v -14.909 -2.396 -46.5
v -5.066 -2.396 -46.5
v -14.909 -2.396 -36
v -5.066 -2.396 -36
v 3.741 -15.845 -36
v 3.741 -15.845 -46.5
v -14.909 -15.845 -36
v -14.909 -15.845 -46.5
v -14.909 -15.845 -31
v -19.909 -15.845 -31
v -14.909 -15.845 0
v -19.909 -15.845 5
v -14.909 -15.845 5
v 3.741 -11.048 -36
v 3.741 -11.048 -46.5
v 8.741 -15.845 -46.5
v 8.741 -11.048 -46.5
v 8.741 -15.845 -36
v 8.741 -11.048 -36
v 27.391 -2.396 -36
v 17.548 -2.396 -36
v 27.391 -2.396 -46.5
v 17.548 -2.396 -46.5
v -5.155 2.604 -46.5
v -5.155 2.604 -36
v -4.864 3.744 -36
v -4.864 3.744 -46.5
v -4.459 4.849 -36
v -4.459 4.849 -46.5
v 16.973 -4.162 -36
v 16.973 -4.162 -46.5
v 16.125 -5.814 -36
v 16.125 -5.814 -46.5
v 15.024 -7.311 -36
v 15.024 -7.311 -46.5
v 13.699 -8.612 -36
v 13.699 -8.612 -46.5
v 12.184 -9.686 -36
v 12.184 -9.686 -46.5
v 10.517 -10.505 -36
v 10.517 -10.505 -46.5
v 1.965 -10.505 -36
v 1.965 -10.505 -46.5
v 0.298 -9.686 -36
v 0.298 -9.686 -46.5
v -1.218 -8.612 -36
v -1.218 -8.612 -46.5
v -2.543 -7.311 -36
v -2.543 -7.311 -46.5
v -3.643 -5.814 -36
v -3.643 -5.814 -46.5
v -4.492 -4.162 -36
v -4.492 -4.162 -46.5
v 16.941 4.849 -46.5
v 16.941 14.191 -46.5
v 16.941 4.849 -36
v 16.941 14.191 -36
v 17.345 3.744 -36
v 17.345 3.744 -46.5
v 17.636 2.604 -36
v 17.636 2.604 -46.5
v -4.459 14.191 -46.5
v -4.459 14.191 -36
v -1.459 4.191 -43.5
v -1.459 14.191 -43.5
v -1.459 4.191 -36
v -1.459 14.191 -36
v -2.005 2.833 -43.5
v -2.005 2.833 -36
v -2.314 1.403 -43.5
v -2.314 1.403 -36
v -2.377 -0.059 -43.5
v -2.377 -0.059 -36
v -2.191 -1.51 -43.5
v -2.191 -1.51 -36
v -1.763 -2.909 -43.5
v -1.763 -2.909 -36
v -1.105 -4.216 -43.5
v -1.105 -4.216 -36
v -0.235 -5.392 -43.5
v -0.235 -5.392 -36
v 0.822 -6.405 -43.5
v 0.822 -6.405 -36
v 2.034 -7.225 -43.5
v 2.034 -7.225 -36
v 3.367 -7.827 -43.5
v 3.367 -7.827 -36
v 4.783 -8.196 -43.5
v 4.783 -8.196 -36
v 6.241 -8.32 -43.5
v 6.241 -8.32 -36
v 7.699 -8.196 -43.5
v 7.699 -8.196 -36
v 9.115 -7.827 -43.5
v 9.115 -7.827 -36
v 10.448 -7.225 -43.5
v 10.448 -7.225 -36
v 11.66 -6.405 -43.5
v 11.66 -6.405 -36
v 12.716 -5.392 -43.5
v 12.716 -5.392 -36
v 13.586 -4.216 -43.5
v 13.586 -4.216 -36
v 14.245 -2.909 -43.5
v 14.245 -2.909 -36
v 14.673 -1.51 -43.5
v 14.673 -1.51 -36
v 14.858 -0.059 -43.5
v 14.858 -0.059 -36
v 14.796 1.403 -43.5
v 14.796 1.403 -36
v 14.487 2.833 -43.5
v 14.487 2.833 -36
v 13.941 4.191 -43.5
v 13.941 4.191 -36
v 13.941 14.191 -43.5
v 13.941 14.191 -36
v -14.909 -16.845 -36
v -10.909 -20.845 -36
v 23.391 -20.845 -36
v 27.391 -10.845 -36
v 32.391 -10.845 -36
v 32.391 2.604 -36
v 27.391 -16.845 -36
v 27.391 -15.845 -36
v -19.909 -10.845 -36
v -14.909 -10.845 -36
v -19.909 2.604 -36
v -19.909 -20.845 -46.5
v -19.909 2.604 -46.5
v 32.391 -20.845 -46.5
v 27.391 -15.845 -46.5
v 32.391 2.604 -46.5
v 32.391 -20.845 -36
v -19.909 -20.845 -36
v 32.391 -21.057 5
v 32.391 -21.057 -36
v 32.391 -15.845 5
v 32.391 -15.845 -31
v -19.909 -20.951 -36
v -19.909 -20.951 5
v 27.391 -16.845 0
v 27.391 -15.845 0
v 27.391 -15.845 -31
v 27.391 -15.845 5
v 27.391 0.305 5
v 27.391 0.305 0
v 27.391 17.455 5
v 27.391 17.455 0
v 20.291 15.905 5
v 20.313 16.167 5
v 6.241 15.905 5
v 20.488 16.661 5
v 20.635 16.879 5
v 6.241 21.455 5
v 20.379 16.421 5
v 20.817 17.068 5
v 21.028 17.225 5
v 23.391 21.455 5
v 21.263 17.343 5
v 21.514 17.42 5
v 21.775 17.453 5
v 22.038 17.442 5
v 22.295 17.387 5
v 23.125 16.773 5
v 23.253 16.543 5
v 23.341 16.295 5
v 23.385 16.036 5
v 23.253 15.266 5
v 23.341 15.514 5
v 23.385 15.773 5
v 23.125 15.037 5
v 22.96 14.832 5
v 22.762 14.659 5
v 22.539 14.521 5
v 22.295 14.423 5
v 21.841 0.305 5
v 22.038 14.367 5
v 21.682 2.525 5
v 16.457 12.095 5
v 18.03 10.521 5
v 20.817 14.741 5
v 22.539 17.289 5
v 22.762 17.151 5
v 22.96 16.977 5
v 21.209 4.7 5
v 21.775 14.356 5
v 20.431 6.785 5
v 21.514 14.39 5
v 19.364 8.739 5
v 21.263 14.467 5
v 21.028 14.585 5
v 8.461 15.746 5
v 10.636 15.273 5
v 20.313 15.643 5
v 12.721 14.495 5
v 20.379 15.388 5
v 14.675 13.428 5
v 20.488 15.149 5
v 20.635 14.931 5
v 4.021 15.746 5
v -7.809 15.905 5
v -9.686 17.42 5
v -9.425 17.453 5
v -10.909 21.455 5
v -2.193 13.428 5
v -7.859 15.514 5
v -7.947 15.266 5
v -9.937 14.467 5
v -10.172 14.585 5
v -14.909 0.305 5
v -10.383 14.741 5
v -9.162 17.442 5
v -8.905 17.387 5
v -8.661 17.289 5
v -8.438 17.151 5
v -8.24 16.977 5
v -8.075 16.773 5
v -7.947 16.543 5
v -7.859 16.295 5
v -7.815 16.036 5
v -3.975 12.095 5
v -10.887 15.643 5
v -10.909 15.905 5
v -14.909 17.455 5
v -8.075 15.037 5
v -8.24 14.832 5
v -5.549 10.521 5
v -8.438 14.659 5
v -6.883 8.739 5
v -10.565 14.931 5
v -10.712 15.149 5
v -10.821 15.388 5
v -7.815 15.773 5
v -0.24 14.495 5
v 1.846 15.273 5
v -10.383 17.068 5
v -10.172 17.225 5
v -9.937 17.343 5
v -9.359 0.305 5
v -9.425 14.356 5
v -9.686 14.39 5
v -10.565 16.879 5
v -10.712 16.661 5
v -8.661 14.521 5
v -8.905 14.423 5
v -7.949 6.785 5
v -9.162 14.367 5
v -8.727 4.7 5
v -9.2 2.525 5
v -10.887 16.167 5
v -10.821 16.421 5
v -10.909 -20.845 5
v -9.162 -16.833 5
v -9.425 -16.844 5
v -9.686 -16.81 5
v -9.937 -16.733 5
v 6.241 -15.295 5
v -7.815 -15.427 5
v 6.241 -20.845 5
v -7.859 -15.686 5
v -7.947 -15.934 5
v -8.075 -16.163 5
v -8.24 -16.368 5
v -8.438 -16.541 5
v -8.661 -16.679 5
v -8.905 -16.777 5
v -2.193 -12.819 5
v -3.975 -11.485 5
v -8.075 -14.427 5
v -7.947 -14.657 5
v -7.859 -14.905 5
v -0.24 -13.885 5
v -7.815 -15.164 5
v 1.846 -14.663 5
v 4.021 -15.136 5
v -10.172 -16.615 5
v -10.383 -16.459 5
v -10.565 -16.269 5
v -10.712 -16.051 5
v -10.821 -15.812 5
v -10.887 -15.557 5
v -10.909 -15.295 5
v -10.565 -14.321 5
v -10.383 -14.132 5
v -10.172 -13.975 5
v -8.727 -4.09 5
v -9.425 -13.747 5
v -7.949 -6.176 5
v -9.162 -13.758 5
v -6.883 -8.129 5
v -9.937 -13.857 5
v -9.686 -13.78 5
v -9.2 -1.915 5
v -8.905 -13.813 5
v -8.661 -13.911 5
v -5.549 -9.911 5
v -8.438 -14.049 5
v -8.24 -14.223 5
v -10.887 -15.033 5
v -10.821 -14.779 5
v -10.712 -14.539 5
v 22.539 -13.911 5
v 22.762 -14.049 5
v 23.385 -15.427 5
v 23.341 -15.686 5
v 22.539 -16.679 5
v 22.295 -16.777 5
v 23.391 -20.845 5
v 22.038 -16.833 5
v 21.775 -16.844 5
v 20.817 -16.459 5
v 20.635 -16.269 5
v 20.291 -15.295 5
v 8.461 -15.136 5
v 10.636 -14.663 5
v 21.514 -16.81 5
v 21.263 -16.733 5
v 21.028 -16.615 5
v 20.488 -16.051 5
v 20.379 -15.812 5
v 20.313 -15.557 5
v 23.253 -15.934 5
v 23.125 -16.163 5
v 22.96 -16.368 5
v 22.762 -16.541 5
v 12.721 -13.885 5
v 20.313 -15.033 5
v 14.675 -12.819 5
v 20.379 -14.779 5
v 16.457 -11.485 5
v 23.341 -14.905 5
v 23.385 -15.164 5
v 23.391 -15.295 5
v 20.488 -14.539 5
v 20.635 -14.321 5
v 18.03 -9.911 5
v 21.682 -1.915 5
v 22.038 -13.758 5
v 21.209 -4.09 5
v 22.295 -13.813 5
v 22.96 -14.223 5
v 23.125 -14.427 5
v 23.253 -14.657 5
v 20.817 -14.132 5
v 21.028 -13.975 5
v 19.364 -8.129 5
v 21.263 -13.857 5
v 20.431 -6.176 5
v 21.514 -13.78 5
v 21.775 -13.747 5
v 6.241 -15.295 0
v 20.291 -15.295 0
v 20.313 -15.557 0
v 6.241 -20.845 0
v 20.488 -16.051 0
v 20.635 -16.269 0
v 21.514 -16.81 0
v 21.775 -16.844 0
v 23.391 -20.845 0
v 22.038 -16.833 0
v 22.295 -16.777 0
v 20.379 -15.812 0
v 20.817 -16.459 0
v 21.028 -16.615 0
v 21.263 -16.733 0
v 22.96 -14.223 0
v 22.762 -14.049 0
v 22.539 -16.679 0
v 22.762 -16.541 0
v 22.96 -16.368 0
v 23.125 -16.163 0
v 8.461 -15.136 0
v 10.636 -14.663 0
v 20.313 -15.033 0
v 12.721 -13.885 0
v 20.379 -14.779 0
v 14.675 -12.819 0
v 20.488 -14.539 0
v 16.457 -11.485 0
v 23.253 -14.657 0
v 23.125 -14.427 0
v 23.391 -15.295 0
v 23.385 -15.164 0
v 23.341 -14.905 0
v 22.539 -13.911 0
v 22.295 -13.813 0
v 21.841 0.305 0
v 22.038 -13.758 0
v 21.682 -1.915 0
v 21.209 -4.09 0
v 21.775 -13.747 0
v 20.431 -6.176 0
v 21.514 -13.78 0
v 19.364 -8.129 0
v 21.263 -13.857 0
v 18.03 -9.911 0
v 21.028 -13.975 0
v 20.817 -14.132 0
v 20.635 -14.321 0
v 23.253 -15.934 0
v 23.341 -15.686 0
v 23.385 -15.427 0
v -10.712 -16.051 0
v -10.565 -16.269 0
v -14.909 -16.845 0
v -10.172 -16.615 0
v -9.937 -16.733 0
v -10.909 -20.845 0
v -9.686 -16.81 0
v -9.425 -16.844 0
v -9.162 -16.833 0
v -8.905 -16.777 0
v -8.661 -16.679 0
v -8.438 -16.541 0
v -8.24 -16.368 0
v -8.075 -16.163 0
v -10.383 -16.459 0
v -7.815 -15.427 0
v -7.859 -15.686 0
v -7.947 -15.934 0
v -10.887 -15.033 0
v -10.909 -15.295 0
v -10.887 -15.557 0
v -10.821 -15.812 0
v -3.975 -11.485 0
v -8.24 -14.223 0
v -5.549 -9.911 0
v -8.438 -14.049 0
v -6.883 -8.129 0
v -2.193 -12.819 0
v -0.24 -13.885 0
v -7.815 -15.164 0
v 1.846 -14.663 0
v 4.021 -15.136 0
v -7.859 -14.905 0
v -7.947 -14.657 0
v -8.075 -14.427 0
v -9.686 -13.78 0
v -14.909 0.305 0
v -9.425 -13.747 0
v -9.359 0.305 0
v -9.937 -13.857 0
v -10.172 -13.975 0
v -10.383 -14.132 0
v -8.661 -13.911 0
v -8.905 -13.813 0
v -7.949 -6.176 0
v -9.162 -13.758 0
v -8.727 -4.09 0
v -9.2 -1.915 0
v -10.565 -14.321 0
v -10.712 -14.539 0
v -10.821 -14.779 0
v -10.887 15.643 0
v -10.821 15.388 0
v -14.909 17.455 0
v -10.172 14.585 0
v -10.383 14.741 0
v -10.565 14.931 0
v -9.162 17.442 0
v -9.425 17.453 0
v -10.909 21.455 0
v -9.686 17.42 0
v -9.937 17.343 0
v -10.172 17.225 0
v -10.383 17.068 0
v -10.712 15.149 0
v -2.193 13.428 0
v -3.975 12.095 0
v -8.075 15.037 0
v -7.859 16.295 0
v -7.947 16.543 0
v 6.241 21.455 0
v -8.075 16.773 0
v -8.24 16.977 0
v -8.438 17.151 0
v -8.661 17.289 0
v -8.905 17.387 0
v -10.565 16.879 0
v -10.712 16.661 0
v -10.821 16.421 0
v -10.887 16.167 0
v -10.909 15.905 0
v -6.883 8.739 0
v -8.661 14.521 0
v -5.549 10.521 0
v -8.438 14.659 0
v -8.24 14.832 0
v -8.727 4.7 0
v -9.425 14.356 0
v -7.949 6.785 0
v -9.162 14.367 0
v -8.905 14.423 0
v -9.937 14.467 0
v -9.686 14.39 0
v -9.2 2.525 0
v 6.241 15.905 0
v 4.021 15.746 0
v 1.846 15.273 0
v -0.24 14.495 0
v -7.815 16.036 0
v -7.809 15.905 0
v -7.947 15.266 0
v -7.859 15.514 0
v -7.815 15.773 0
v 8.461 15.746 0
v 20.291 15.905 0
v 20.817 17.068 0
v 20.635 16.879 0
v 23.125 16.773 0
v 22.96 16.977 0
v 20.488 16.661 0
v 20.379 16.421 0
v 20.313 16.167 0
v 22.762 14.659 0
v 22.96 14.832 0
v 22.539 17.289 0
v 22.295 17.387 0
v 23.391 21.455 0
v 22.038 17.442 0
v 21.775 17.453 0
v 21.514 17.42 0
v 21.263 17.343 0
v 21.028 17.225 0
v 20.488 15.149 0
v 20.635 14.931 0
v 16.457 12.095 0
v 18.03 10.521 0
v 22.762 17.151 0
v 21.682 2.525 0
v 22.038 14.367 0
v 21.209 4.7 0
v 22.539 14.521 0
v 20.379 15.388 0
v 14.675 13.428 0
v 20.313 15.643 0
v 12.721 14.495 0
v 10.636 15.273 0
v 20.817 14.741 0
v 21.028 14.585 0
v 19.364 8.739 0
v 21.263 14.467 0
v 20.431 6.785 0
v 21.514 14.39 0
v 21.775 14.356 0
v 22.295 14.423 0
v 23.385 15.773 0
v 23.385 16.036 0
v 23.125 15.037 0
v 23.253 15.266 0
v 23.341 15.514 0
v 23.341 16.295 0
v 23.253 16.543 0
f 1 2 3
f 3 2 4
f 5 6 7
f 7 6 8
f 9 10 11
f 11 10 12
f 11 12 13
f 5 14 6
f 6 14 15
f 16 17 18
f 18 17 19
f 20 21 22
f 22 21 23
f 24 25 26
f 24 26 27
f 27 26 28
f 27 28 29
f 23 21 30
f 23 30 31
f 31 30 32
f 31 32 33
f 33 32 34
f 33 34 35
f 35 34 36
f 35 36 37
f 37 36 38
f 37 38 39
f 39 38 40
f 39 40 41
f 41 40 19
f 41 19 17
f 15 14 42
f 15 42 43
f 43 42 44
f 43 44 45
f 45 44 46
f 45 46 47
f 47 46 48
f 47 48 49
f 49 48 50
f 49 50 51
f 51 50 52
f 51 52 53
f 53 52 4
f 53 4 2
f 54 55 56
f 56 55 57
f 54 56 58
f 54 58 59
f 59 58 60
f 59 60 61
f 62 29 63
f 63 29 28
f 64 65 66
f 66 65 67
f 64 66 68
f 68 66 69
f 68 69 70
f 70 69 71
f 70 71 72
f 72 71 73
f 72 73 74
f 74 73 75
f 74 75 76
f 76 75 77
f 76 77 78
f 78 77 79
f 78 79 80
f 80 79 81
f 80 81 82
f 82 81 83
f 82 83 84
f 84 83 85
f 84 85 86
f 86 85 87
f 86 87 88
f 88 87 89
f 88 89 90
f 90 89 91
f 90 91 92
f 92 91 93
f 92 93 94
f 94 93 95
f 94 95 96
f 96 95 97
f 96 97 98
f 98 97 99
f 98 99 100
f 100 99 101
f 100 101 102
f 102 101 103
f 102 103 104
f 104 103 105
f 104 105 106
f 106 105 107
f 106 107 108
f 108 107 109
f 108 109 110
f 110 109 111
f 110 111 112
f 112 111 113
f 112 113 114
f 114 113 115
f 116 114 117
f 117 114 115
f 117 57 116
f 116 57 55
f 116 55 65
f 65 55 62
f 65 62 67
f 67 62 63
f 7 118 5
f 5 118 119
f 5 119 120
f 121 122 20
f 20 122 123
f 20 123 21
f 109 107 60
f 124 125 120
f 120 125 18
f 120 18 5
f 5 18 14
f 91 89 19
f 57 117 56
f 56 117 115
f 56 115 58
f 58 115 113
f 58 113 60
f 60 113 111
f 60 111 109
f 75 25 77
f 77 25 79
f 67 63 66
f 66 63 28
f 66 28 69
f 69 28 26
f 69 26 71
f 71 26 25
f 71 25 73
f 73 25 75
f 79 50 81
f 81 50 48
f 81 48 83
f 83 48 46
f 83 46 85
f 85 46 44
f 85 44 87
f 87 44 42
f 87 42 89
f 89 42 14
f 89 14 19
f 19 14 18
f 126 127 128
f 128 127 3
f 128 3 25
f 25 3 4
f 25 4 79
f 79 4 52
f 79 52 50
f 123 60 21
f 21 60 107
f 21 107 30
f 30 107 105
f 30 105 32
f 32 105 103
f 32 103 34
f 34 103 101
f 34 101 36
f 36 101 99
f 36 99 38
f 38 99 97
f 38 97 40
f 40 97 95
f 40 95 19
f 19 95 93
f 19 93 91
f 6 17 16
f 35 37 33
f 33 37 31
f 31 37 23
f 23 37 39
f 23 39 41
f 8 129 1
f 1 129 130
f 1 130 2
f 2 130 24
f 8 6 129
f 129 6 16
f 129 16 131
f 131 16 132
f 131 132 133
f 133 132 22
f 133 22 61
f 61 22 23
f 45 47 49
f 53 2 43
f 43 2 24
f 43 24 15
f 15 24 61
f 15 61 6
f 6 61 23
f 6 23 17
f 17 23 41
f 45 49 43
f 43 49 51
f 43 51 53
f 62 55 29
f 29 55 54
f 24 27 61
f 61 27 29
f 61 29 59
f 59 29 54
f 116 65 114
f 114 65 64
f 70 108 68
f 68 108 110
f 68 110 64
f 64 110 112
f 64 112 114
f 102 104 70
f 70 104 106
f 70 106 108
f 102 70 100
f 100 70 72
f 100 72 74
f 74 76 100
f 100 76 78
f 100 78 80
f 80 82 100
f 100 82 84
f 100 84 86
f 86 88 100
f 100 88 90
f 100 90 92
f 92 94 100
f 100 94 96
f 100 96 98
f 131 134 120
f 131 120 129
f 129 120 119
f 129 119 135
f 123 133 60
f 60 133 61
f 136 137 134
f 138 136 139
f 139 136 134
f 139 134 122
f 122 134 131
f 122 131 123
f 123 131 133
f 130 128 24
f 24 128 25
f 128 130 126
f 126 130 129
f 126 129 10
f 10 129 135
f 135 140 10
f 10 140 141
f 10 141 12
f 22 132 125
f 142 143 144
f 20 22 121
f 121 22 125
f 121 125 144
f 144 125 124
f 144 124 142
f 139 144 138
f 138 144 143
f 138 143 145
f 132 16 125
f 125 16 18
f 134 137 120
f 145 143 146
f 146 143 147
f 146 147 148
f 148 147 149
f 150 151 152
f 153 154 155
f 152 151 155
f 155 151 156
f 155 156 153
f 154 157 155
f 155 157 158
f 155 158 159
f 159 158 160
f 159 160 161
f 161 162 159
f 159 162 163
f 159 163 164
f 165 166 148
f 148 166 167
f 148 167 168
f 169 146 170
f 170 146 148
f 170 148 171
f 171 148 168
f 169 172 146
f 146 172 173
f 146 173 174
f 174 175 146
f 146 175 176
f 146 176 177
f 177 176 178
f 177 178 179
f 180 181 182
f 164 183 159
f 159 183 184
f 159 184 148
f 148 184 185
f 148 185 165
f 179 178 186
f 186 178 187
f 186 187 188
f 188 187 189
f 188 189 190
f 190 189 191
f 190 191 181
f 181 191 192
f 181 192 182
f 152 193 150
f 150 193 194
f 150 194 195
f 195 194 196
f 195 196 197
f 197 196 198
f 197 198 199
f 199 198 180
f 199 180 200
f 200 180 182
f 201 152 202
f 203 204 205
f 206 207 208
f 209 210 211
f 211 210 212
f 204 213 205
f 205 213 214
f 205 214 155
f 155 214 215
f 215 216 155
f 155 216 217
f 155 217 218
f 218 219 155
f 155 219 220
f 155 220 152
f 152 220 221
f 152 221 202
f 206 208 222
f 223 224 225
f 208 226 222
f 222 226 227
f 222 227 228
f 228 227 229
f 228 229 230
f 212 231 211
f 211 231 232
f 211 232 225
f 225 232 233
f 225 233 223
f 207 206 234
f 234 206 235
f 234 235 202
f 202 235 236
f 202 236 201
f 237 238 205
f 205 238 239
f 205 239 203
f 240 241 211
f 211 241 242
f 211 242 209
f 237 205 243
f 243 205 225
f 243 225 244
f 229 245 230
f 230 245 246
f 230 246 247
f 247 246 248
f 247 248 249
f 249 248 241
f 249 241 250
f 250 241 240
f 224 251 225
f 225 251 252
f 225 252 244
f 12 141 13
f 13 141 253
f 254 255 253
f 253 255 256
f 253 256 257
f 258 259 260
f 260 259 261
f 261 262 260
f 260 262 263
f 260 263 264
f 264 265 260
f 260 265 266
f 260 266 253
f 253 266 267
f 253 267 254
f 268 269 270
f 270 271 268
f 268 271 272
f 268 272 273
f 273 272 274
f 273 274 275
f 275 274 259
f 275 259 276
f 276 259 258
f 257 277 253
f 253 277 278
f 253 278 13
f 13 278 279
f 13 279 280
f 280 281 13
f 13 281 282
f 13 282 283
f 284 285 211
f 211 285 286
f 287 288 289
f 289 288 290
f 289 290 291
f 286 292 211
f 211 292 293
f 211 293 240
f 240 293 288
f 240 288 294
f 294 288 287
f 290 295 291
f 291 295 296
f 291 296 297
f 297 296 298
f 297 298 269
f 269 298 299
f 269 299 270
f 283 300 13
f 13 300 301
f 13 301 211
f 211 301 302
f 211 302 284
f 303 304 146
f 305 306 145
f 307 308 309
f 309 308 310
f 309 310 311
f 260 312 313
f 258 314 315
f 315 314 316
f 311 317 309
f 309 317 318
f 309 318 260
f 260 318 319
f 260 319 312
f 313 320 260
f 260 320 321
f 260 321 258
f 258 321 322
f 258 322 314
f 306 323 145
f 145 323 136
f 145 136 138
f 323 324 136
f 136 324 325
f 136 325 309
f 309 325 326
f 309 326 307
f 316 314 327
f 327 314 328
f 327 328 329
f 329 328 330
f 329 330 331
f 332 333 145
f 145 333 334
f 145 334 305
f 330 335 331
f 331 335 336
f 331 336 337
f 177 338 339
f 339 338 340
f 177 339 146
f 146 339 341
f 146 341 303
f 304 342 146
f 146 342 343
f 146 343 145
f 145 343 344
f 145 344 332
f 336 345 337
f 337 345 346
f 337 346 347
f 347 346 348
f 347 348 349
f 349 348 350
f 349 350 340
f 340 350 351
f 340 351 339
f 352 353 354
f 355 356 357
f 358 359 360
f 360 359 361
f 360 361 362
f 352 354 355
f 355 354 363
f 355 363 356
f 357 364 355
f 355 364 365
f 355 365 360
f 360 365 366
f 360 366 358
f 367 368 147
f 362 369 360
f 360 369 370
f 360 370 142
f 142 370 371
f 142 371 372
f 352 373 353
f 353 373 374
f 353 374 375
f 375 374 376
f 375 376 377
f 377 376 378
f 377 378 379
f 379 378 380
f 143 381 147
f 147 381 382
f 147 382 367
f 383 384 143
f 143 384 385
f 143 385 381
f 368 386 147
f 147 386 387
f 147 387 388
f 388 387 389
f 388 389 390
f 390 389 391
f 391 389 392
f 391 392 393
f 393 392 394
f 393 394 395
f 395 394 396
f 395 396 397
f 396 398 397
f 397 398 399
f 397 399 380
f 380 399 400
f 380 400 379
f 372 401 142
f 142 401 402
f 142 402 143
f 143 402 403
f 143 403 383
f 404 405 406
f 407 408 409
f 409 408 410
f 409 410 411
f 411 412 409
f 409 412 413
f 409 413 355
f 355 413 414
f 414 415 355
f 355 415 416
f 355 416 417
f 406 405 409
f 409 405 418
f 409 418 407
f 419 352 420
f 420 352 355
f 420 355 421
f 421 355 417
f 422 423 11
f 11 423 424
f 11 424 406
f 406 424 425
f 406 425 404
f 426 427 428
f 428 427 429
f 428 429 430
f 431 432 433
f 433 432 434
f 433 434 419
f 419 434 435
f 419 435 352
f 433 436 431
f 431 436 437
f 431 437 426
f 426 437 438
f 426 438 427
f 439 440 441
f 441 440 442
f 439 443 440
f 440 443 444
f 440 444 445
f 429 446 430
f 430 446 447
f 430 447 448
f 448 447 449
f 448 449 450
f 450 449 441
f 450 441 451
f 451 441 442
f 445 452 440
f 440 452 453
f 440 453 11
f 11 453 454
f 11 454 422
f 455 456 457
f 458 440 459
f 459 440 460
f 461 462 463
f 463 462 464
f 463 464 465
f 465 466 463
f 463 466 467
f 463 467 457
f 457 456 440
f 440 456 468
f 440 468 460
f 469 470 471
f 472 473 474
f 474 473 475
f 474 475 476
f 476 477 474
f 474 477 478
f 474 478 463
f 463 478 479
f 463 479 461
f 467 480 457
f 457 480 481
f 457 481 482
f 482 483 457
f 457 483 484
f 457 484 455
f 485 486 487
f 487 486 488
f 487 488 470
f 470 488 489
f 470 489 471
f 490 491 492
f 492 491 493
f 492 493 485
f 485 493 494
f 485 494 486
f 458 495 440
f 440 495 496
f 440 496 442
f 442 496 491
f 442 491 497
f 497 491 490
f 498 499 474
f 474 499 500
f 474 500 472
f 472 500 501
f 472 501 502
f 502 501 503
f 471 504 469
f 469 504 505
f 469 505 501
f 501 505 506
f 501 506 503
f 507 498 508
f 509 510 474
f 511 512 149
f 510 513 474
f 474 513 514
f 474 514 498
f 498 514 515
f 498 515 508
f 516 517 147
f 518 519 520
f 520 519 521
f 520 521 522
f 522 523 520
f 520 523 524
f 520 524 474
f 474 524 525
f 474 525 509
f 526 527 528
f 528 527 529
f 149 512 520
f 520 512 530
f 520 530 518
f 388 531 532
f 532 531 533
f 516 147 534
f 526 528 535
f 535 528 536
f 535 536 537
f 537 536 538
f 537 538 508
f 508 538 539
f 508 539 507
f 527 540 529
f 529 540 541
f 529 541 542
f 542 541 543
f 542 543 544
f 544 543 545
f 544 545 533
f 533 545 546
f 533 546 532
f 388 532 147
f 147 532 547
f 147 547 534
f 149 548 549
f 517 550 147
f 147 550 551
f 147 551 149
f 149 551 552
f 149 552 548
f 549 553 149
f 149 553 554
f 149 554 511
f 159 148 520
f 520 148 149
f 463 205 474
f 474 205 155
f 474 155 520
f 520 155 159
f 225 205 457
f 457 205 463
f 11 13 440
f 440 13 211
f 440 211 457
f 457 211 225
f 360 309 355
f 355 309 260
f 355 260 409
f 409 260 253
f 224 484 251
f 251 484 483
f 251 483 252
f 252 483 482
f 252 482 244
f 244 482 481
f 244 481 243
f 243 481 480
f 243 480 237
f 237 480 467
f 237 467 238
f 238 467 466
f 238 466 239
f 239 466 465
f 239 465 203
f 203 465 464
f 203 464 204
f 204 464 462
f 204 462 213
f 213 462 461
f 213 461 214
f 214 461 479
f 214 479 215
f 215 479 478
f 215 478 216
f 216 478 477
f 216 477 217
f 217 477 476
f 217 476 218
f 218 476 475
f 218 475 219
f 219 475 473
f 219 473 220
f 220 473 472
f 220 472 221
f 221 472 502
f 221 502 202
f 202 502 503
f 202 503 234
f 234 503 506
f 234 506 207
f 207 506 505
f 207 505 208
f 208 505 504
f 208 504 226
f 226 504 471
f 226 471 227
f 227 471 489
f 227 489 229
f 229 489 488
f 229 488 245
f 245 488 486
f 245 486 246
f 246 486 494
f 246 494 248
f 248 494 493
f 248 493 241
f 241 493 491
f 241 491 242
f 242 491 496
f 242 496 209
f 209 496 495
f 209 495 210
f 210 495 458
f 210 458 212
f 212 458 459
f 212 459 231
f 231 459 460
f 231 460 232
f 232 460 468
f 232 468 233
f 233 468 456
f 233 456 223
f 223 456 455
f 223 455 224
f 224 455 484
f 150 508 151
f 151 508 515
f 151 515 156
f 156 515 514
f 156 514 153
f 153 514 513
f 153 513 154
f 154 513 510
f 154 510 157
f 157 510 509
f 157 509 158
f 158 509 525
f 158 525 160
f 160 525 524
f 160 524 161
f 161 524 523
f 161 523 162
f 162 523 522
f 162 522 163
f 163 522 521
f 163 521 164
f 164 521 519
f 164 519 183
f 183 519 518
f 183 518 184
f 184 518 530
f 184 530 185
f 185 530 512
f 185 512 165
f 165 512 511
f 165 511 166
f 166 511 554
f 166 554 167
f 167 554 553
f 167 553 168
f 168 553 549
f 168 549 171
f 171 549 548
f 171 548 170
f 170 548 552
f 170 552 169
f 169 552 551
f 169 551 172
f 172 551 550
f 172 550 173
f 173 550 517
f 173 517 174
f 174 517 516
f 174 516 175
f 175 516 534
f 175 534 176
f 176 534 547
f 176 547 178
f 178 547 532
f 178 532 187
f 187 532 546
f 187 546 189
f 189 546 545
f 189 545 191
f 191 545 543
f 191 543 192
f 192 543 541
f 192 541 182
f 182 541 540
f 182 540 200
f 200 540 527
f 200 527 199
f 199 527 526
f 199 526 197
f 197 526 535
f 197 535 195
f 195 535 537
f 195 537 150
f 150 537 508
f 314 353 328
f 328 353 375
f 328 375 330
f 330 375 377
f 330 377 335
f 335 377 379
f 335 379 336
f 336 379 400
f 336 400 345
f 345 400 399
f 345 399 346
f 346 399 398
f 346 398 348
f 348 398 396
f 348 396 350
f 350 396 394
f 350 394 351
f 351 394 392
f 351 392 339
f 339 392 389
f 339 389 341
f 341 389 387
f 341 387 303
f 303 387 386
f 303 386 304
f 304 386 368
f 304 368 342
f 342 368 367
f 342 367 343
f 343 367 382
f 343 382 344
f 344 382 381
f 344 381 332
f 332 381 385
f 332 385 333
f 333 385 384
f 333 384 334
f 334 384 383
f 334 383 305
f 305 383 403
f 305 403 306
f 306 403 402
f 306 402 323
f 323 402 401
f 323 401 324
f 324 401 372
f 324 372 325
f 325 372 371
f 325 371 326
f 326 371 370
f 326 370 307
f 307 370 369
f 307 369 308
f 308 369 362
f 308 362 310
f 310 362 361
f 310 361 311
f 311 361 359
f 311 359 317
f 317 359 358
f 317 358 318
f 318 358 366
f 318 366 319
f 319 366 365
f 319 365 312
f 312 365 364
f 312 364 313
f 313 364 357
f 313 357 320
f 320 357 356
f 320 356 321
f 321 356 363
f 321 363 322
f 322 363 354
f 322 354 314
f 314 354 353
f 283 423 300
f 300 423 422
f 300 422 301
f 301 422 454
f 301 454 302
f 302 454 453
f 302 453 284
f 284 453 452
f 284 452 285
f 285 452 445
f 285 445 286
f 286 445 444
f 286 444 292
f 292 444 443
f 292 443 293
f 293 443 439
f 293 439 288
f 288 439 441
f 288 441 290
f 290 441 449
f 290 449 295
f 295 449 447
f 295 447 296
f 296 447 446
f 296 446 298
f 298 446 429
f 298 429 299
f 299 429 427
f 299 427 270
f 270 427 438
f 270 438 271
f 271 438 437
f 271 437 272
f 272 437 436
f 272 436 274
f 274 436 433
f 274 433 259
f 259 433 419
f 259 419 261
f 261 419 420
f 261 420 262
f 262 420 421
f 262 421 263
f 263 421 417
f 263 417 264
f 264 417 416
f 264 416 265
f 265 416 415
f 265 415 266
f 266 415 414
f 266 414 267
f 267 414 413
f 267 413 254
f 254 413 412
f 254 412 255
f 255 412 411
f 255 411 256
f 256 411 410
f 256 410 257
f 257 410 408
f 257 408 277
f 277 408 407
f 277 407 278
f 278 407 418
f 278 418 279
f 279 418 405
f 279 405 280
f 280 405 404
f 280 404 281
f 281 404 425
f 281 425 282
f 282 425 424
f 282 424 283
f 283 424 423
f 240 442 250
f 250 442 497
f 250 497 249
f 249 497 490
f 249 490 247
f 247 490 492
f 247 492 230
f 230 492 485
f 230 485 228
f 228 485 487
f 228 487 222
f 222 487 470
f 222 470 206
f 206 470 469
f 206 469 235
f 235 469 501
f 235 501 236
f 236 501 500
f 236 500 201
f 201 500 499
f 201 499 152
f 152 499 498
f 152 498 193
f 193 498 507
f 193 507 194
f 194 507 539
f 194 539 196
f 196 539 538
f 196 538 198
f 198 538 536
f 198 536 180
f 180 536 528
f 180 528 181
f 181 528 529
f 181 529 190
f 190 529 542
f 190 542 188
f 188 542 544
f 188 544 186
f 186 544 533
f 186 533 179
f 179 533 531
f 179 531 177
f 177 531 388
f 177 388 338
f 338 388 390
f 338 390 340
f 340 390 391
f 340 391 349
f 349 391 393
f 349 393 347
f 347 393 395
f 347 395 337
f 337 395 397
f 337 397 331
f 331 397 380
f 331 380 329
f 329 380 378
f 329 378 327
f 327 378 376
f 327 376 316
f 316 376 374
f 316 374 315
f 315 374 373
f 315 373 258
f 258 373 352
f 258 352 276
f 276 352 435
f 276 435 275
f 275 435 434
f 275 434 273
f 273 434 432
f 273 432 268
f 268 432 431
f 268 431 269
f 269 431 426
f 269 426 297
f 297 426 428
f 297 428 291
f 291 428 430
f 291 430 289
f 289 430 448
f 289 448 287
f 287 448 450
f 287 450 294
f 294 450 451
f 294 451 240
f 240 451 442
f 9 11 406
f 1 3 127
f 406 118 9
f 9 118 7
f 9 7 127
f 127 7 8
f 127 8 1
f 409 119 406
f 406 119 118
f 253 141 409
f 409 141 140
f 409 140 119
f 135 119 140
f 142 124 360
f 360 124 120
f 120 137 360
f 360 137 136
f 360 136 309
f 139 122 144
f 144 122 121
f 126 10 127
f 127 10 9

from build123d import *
from build123d.topology import SkipClean

# Parameters (mm, degrees)
SKETCH2_R            = 1.55
SKETCH2_R_2          = 15.6
BOSS_EXTRUDE1_DEPTH  = 5
BOSS_EXTRUDE3_DEPTH  = 41
BOSS_EXTRUDE4_DEPTH  = 7.5
BOSS_EXTRUDE5_DEPTH  = 3
BOSS_EXTRUDE6_START  = -7.5
BOSS_EXTRUDE6_DEPTH  = 10.5
SKETCH12_W           = 10.5
SKETCH12_H           = 5
BOSS_EXTRUDE8_DEPTH  = 23.65
SKETCH13_W           = 10.5
SKETCH13_H           = 5
BOSS_EXTRUDE9_DEPTH  = 23.65
SKETCH14_W           = 5
SKETCH14_H           = 28.65
CUT_EXTRUDE1_DEPTH   = 41
SKETCH15_W           = 5
SKETCH15_H           = 10.5
BOSS_EXTRUDE10_DEPTH = 13.449158782
BOSS_EXTRUDE11_DEPTH = 5
BOSS_EXTRUDE12_DEPTH = 5


# Read off the part's stored shape, not the designer's step: Boss-Extrude6
with BuildPart() as part:
    # Sketch2 → Boss-Extrude1 (new body)
    with BuildSketch(Plane.XY):
        Polygon((-10.909227683, 21.454823411), (23.390772317, 21.454823411), (27.390772317, 17.454823411), (27.390772317, -16.845176589), (23.390772317, -20.845176589), (-10.909227683, -20.845176589), (-14.909227683, -16.845176589), (-14.909227683, 17.454823411), align=None)
        with Locations((-9.359227683, 15.904823411)):
            Circle(SKETCH2_R, mode=Mode.SUBTRACT)
        with Locations(Location((21.840772317, 15.904823411, 0), (0, 0, 180))):
            Circle(SKETCH2_R, mode=Mode.SUBTRACT)
        with Locations((21.840772317, -15.295176589)):
            Circle(SKETCH2_R, mode=Mode.SUBTRACT)
        with Locations(Location((-9.359227683, -15.295176589, 0), (0, 0, 180))):
            Circle(SKETCH2_R, mode=Mode.SUBTRACT)
        with Locations((6.240772317, 0.304823411)):
            Circle(SKETCH2_R_2, mode=Mode.SUBTRACT)
    extrude(amount=BOSS_EXTRUDE1_DEPTH)

    # Sketch4 → Boss-Extrude3 (add)
    with BuildSketch(Plane.XY.offset(5)):
        Polygon((-14.909227683, -12.195176589), (-14.909227683, 0.304823411), (-14.909227683, 12.804823411), (-19.909227683, 12.804823411), (-19.909227683, -12.195176589), (-19.909227683, -20.951034478), (-10.909227683, -20.845176589), (-14.909227683, -16.845176589), align=None)
        Polygon((32.390772317, 12.804823411), (27.390772317, 12.804823411), (27.390772317, 0.304823411), (27.390772317, -12.195176589), (27.390772317, -16.845176589), (23.390772317, -20.845176589), (32.390772317, -21.056892366), (32.390772317, -12.195176589), align=None)
    extrude(amount=-BOSS_EXTRUDE3_DEPTH)

    # Sketch12 → Boss-Extrude8 (add)
    with BuildSketch(Plane.ZY.offset(-3.740772317)):
        with Locations((-41.25, -18.345176589)):
            Rectangle(SKETCH12_W, SKETCH12_H)
    extrude(amount=BOSS_EXTRUDE8_DEPTH)

    # Sketch13 → Boss-Extrude9 (add)
    with BuildSketch(Plane(origin=(8.740772317, 0, 0), x_dir=(0, 0, -1), z_dir=(1, 0, 0))):
        with Locations((41.25, -18.345176589)):
            Rectangle(SKETCH13_W, SKETCH13_H)
    extrude(amount=BOSS_EXTRUDE9_DEPTH)

    # Sketch14 → Cut-Extrude1 (cut)
    with BuildSketch(Plane(origin=(0, 0, -36), x_dir=(-1, 0, 0), z_dir=(0, 0, -1))):
        with Locations((-29.890772317, -1.520176589)):
            Rectangle(SKETCH14_W, SKETCH14_H)
        with Locations((17.409227683, -1.520176589)):
            Rectangle(SKETCH14_W, SKETCH14_H)
    extrude(amount=-CUT_EXTRUDE1_DEPTH, mode=Mode.SUBTRACT)



with BuildPart() as body_2:
    # Sketch5 → Boss-Extrude4 (new body)
    with BuildSketch(Plane(origin=(0, 0, -36), x_dir=(-1, 0, 0), z_dir=(0, 0, -1))):
        with BuildLine():
            ThreePointArc((1.459227683, 4.190775675), (-6.240772317, -8.320176589), (-13.940772317, 4.190775675))
            Line((-13.940772317, 4.190775675), (-13.940772317, 11.190775675))
            Line((-13.940772317, 11.190775675), (-13.940772317, 14.190775675))
            Line((-13.940772317, 14.190775675), (-16.940772317, 14.190775675))
            Line((-16.940772317, 14.190775675), (-16.940772317, 4.849119286))
            ThreePointArc((-16.940772317, 4.849119286), (-6.240772317, -11.320176589), (4.459227683, 4.849119286))
            Line((4.459227683, 4.849119286), (4.459227683, 14.190775675))
            Line((4.459227683, 14.190775675), (1.459227683, 14.190775675))
            Line((1.459227683, 14.190775675), (1.459227683, 11.190775675))
            Line((1.459227683, 11.190775675), (1.459227683, 4.190775675))
        make_face()
    extrude(amount=BOSS_EXTRUDE4_DEPTH)

    # Sketch6 → Boss-Extrude5 (add)
    with SkipClean():  # the faces are left unmerged after this step: merging them gives an invalid solid
        with BuildSketch(Plane(origin=(0, 0, -43.5), x_dir=(-1, 0, 0), z_dir=(0, 0, -1))):
            with BuildLine():
                Line((-16.940772317, 4.849119286), (-16.940772317, 14.190775675))
                Line((-16.940772317, 14.190775675), (4.459227683, 14.190775675))
                Line((4.459227683, 14.190775675), (4.459227683, 4.849119286))
                ThreePointArc((4.459227683, 4.849119286), (-6.240772317, -11.320176589), (-16.940772317, 4.849119286))
            make_face()
        extrude(amount=BOSS_EXTRUDE5_DEPTH)

    # Boss-Extrude6 outline → Boss-Extrude6 (add)
    with SkipClean():  # the faces are left unmerged after this step: merging them gives an invalid solid
        with BuildSketch(Plane(origin=(0, 0, -43.5), x_dir=(-1, 0, 0), z_dir=(0, 0, -1)).offset(BOSS_EXTRUDE6_START)):
            with BuildLine():
                Line((-8.740772317, -20.845176589), (-3.740772317, -20.845176589))
                Line((-3.740772317, -20.845176589), (-3.740772317, -11.048177294))
                ThreePointArc((-3.740772317, -11.048177294), (-6.240772317, -11.320176589), (-8.740772317, -11.048177294))
                Line((-8.740772317, -11.048177294), (-8.740772317, -20.845176589))
            make_face()
            with BuildLine():
                Line((-32.390772317, -2.396017807), (-17.547676478, -2.396017807))
                ThreePointArc((-17.547676478, -2.396017807), (-17.863953086, 0.099168806), (-17.636143917, 2.603982193))
                Line((-17.636143917, 2.603982193), (-32.390772317, 2.603982193))
                Line((-32.390772317, 2.603982193), (-32.390772317, -2.396017807))
            make_face()
            with BuildLine():
                ThreePointArc((5.154599283, 2.603982193), (5.382408452, 0.099168806), (5.066131844, -2.396017807))
                Line((5.066131844, -2.396017807), (19.909227683, -2.396017807))
                Line((19.909227683, -2.396017807), (19.909227683, 2.603982193))
                Line((19.909227683, 2.603982193), (5.154599283, 2.603982193))
            make_face()
        extrude(amount=BOSS_EXTRUDE6_DEPTH)


with BuildPart() as part_1:
    with SkipClean():  # the faces are left unmerged after this step: merging them gives an invalid solid
        add(part.part)

        add(body_2.part)  # Boss-Extrude10 merges body 2
        # Sketch15 → Boss-Extrude10 (add)
        with BuildSketch(Plane(origin=(0, -15.845176589, 0), x_dir=(1, 0, 0), z_dir=(0, 1, 0))):
            with Locations((29.890772317, 41.25)):
                Rectangle(SKETCH15_W, SKETCH15_H)
            with Locations((-17.409227683, 41.25)):
                Rectangle(SKETCH15_W, SKETCH15_H)
        extrude(amount=BOSS_EXTRUDE10_DEPTH)

    # Sketch16 → Boss-Extrude11 (add)
    with SkipClean():  # the faces are left unmerged after this step: merging them gives an invalid solid
        with BuildSketch(Plane(origin=(32.390772317, 0, 0), x_dir=(0, 0, -1), z_dir=(1, 0, 0))):
            Polygon((36, -10.845176589), (31, -15.845176589), (36, -15.845176589), align=None)
        extrude(amount=-BOSS_EXTRUDE11_DEPTH)

    # Sketch18 → Boss-Extrude12 (add)
    with SkipClean():  # the faces are left unmerged after this step: merging them gives an invalid solid
        with BuildSketch(Plane.ZY.offset(19.909227683)):
            Polygon((-36, -10.845176589), (-31, -15.845176589), (-36, -15.845176589), align=None)
        extrude(amount=-BOSS_EXTRUDE12_DEPTH)


solid = part_1.part
